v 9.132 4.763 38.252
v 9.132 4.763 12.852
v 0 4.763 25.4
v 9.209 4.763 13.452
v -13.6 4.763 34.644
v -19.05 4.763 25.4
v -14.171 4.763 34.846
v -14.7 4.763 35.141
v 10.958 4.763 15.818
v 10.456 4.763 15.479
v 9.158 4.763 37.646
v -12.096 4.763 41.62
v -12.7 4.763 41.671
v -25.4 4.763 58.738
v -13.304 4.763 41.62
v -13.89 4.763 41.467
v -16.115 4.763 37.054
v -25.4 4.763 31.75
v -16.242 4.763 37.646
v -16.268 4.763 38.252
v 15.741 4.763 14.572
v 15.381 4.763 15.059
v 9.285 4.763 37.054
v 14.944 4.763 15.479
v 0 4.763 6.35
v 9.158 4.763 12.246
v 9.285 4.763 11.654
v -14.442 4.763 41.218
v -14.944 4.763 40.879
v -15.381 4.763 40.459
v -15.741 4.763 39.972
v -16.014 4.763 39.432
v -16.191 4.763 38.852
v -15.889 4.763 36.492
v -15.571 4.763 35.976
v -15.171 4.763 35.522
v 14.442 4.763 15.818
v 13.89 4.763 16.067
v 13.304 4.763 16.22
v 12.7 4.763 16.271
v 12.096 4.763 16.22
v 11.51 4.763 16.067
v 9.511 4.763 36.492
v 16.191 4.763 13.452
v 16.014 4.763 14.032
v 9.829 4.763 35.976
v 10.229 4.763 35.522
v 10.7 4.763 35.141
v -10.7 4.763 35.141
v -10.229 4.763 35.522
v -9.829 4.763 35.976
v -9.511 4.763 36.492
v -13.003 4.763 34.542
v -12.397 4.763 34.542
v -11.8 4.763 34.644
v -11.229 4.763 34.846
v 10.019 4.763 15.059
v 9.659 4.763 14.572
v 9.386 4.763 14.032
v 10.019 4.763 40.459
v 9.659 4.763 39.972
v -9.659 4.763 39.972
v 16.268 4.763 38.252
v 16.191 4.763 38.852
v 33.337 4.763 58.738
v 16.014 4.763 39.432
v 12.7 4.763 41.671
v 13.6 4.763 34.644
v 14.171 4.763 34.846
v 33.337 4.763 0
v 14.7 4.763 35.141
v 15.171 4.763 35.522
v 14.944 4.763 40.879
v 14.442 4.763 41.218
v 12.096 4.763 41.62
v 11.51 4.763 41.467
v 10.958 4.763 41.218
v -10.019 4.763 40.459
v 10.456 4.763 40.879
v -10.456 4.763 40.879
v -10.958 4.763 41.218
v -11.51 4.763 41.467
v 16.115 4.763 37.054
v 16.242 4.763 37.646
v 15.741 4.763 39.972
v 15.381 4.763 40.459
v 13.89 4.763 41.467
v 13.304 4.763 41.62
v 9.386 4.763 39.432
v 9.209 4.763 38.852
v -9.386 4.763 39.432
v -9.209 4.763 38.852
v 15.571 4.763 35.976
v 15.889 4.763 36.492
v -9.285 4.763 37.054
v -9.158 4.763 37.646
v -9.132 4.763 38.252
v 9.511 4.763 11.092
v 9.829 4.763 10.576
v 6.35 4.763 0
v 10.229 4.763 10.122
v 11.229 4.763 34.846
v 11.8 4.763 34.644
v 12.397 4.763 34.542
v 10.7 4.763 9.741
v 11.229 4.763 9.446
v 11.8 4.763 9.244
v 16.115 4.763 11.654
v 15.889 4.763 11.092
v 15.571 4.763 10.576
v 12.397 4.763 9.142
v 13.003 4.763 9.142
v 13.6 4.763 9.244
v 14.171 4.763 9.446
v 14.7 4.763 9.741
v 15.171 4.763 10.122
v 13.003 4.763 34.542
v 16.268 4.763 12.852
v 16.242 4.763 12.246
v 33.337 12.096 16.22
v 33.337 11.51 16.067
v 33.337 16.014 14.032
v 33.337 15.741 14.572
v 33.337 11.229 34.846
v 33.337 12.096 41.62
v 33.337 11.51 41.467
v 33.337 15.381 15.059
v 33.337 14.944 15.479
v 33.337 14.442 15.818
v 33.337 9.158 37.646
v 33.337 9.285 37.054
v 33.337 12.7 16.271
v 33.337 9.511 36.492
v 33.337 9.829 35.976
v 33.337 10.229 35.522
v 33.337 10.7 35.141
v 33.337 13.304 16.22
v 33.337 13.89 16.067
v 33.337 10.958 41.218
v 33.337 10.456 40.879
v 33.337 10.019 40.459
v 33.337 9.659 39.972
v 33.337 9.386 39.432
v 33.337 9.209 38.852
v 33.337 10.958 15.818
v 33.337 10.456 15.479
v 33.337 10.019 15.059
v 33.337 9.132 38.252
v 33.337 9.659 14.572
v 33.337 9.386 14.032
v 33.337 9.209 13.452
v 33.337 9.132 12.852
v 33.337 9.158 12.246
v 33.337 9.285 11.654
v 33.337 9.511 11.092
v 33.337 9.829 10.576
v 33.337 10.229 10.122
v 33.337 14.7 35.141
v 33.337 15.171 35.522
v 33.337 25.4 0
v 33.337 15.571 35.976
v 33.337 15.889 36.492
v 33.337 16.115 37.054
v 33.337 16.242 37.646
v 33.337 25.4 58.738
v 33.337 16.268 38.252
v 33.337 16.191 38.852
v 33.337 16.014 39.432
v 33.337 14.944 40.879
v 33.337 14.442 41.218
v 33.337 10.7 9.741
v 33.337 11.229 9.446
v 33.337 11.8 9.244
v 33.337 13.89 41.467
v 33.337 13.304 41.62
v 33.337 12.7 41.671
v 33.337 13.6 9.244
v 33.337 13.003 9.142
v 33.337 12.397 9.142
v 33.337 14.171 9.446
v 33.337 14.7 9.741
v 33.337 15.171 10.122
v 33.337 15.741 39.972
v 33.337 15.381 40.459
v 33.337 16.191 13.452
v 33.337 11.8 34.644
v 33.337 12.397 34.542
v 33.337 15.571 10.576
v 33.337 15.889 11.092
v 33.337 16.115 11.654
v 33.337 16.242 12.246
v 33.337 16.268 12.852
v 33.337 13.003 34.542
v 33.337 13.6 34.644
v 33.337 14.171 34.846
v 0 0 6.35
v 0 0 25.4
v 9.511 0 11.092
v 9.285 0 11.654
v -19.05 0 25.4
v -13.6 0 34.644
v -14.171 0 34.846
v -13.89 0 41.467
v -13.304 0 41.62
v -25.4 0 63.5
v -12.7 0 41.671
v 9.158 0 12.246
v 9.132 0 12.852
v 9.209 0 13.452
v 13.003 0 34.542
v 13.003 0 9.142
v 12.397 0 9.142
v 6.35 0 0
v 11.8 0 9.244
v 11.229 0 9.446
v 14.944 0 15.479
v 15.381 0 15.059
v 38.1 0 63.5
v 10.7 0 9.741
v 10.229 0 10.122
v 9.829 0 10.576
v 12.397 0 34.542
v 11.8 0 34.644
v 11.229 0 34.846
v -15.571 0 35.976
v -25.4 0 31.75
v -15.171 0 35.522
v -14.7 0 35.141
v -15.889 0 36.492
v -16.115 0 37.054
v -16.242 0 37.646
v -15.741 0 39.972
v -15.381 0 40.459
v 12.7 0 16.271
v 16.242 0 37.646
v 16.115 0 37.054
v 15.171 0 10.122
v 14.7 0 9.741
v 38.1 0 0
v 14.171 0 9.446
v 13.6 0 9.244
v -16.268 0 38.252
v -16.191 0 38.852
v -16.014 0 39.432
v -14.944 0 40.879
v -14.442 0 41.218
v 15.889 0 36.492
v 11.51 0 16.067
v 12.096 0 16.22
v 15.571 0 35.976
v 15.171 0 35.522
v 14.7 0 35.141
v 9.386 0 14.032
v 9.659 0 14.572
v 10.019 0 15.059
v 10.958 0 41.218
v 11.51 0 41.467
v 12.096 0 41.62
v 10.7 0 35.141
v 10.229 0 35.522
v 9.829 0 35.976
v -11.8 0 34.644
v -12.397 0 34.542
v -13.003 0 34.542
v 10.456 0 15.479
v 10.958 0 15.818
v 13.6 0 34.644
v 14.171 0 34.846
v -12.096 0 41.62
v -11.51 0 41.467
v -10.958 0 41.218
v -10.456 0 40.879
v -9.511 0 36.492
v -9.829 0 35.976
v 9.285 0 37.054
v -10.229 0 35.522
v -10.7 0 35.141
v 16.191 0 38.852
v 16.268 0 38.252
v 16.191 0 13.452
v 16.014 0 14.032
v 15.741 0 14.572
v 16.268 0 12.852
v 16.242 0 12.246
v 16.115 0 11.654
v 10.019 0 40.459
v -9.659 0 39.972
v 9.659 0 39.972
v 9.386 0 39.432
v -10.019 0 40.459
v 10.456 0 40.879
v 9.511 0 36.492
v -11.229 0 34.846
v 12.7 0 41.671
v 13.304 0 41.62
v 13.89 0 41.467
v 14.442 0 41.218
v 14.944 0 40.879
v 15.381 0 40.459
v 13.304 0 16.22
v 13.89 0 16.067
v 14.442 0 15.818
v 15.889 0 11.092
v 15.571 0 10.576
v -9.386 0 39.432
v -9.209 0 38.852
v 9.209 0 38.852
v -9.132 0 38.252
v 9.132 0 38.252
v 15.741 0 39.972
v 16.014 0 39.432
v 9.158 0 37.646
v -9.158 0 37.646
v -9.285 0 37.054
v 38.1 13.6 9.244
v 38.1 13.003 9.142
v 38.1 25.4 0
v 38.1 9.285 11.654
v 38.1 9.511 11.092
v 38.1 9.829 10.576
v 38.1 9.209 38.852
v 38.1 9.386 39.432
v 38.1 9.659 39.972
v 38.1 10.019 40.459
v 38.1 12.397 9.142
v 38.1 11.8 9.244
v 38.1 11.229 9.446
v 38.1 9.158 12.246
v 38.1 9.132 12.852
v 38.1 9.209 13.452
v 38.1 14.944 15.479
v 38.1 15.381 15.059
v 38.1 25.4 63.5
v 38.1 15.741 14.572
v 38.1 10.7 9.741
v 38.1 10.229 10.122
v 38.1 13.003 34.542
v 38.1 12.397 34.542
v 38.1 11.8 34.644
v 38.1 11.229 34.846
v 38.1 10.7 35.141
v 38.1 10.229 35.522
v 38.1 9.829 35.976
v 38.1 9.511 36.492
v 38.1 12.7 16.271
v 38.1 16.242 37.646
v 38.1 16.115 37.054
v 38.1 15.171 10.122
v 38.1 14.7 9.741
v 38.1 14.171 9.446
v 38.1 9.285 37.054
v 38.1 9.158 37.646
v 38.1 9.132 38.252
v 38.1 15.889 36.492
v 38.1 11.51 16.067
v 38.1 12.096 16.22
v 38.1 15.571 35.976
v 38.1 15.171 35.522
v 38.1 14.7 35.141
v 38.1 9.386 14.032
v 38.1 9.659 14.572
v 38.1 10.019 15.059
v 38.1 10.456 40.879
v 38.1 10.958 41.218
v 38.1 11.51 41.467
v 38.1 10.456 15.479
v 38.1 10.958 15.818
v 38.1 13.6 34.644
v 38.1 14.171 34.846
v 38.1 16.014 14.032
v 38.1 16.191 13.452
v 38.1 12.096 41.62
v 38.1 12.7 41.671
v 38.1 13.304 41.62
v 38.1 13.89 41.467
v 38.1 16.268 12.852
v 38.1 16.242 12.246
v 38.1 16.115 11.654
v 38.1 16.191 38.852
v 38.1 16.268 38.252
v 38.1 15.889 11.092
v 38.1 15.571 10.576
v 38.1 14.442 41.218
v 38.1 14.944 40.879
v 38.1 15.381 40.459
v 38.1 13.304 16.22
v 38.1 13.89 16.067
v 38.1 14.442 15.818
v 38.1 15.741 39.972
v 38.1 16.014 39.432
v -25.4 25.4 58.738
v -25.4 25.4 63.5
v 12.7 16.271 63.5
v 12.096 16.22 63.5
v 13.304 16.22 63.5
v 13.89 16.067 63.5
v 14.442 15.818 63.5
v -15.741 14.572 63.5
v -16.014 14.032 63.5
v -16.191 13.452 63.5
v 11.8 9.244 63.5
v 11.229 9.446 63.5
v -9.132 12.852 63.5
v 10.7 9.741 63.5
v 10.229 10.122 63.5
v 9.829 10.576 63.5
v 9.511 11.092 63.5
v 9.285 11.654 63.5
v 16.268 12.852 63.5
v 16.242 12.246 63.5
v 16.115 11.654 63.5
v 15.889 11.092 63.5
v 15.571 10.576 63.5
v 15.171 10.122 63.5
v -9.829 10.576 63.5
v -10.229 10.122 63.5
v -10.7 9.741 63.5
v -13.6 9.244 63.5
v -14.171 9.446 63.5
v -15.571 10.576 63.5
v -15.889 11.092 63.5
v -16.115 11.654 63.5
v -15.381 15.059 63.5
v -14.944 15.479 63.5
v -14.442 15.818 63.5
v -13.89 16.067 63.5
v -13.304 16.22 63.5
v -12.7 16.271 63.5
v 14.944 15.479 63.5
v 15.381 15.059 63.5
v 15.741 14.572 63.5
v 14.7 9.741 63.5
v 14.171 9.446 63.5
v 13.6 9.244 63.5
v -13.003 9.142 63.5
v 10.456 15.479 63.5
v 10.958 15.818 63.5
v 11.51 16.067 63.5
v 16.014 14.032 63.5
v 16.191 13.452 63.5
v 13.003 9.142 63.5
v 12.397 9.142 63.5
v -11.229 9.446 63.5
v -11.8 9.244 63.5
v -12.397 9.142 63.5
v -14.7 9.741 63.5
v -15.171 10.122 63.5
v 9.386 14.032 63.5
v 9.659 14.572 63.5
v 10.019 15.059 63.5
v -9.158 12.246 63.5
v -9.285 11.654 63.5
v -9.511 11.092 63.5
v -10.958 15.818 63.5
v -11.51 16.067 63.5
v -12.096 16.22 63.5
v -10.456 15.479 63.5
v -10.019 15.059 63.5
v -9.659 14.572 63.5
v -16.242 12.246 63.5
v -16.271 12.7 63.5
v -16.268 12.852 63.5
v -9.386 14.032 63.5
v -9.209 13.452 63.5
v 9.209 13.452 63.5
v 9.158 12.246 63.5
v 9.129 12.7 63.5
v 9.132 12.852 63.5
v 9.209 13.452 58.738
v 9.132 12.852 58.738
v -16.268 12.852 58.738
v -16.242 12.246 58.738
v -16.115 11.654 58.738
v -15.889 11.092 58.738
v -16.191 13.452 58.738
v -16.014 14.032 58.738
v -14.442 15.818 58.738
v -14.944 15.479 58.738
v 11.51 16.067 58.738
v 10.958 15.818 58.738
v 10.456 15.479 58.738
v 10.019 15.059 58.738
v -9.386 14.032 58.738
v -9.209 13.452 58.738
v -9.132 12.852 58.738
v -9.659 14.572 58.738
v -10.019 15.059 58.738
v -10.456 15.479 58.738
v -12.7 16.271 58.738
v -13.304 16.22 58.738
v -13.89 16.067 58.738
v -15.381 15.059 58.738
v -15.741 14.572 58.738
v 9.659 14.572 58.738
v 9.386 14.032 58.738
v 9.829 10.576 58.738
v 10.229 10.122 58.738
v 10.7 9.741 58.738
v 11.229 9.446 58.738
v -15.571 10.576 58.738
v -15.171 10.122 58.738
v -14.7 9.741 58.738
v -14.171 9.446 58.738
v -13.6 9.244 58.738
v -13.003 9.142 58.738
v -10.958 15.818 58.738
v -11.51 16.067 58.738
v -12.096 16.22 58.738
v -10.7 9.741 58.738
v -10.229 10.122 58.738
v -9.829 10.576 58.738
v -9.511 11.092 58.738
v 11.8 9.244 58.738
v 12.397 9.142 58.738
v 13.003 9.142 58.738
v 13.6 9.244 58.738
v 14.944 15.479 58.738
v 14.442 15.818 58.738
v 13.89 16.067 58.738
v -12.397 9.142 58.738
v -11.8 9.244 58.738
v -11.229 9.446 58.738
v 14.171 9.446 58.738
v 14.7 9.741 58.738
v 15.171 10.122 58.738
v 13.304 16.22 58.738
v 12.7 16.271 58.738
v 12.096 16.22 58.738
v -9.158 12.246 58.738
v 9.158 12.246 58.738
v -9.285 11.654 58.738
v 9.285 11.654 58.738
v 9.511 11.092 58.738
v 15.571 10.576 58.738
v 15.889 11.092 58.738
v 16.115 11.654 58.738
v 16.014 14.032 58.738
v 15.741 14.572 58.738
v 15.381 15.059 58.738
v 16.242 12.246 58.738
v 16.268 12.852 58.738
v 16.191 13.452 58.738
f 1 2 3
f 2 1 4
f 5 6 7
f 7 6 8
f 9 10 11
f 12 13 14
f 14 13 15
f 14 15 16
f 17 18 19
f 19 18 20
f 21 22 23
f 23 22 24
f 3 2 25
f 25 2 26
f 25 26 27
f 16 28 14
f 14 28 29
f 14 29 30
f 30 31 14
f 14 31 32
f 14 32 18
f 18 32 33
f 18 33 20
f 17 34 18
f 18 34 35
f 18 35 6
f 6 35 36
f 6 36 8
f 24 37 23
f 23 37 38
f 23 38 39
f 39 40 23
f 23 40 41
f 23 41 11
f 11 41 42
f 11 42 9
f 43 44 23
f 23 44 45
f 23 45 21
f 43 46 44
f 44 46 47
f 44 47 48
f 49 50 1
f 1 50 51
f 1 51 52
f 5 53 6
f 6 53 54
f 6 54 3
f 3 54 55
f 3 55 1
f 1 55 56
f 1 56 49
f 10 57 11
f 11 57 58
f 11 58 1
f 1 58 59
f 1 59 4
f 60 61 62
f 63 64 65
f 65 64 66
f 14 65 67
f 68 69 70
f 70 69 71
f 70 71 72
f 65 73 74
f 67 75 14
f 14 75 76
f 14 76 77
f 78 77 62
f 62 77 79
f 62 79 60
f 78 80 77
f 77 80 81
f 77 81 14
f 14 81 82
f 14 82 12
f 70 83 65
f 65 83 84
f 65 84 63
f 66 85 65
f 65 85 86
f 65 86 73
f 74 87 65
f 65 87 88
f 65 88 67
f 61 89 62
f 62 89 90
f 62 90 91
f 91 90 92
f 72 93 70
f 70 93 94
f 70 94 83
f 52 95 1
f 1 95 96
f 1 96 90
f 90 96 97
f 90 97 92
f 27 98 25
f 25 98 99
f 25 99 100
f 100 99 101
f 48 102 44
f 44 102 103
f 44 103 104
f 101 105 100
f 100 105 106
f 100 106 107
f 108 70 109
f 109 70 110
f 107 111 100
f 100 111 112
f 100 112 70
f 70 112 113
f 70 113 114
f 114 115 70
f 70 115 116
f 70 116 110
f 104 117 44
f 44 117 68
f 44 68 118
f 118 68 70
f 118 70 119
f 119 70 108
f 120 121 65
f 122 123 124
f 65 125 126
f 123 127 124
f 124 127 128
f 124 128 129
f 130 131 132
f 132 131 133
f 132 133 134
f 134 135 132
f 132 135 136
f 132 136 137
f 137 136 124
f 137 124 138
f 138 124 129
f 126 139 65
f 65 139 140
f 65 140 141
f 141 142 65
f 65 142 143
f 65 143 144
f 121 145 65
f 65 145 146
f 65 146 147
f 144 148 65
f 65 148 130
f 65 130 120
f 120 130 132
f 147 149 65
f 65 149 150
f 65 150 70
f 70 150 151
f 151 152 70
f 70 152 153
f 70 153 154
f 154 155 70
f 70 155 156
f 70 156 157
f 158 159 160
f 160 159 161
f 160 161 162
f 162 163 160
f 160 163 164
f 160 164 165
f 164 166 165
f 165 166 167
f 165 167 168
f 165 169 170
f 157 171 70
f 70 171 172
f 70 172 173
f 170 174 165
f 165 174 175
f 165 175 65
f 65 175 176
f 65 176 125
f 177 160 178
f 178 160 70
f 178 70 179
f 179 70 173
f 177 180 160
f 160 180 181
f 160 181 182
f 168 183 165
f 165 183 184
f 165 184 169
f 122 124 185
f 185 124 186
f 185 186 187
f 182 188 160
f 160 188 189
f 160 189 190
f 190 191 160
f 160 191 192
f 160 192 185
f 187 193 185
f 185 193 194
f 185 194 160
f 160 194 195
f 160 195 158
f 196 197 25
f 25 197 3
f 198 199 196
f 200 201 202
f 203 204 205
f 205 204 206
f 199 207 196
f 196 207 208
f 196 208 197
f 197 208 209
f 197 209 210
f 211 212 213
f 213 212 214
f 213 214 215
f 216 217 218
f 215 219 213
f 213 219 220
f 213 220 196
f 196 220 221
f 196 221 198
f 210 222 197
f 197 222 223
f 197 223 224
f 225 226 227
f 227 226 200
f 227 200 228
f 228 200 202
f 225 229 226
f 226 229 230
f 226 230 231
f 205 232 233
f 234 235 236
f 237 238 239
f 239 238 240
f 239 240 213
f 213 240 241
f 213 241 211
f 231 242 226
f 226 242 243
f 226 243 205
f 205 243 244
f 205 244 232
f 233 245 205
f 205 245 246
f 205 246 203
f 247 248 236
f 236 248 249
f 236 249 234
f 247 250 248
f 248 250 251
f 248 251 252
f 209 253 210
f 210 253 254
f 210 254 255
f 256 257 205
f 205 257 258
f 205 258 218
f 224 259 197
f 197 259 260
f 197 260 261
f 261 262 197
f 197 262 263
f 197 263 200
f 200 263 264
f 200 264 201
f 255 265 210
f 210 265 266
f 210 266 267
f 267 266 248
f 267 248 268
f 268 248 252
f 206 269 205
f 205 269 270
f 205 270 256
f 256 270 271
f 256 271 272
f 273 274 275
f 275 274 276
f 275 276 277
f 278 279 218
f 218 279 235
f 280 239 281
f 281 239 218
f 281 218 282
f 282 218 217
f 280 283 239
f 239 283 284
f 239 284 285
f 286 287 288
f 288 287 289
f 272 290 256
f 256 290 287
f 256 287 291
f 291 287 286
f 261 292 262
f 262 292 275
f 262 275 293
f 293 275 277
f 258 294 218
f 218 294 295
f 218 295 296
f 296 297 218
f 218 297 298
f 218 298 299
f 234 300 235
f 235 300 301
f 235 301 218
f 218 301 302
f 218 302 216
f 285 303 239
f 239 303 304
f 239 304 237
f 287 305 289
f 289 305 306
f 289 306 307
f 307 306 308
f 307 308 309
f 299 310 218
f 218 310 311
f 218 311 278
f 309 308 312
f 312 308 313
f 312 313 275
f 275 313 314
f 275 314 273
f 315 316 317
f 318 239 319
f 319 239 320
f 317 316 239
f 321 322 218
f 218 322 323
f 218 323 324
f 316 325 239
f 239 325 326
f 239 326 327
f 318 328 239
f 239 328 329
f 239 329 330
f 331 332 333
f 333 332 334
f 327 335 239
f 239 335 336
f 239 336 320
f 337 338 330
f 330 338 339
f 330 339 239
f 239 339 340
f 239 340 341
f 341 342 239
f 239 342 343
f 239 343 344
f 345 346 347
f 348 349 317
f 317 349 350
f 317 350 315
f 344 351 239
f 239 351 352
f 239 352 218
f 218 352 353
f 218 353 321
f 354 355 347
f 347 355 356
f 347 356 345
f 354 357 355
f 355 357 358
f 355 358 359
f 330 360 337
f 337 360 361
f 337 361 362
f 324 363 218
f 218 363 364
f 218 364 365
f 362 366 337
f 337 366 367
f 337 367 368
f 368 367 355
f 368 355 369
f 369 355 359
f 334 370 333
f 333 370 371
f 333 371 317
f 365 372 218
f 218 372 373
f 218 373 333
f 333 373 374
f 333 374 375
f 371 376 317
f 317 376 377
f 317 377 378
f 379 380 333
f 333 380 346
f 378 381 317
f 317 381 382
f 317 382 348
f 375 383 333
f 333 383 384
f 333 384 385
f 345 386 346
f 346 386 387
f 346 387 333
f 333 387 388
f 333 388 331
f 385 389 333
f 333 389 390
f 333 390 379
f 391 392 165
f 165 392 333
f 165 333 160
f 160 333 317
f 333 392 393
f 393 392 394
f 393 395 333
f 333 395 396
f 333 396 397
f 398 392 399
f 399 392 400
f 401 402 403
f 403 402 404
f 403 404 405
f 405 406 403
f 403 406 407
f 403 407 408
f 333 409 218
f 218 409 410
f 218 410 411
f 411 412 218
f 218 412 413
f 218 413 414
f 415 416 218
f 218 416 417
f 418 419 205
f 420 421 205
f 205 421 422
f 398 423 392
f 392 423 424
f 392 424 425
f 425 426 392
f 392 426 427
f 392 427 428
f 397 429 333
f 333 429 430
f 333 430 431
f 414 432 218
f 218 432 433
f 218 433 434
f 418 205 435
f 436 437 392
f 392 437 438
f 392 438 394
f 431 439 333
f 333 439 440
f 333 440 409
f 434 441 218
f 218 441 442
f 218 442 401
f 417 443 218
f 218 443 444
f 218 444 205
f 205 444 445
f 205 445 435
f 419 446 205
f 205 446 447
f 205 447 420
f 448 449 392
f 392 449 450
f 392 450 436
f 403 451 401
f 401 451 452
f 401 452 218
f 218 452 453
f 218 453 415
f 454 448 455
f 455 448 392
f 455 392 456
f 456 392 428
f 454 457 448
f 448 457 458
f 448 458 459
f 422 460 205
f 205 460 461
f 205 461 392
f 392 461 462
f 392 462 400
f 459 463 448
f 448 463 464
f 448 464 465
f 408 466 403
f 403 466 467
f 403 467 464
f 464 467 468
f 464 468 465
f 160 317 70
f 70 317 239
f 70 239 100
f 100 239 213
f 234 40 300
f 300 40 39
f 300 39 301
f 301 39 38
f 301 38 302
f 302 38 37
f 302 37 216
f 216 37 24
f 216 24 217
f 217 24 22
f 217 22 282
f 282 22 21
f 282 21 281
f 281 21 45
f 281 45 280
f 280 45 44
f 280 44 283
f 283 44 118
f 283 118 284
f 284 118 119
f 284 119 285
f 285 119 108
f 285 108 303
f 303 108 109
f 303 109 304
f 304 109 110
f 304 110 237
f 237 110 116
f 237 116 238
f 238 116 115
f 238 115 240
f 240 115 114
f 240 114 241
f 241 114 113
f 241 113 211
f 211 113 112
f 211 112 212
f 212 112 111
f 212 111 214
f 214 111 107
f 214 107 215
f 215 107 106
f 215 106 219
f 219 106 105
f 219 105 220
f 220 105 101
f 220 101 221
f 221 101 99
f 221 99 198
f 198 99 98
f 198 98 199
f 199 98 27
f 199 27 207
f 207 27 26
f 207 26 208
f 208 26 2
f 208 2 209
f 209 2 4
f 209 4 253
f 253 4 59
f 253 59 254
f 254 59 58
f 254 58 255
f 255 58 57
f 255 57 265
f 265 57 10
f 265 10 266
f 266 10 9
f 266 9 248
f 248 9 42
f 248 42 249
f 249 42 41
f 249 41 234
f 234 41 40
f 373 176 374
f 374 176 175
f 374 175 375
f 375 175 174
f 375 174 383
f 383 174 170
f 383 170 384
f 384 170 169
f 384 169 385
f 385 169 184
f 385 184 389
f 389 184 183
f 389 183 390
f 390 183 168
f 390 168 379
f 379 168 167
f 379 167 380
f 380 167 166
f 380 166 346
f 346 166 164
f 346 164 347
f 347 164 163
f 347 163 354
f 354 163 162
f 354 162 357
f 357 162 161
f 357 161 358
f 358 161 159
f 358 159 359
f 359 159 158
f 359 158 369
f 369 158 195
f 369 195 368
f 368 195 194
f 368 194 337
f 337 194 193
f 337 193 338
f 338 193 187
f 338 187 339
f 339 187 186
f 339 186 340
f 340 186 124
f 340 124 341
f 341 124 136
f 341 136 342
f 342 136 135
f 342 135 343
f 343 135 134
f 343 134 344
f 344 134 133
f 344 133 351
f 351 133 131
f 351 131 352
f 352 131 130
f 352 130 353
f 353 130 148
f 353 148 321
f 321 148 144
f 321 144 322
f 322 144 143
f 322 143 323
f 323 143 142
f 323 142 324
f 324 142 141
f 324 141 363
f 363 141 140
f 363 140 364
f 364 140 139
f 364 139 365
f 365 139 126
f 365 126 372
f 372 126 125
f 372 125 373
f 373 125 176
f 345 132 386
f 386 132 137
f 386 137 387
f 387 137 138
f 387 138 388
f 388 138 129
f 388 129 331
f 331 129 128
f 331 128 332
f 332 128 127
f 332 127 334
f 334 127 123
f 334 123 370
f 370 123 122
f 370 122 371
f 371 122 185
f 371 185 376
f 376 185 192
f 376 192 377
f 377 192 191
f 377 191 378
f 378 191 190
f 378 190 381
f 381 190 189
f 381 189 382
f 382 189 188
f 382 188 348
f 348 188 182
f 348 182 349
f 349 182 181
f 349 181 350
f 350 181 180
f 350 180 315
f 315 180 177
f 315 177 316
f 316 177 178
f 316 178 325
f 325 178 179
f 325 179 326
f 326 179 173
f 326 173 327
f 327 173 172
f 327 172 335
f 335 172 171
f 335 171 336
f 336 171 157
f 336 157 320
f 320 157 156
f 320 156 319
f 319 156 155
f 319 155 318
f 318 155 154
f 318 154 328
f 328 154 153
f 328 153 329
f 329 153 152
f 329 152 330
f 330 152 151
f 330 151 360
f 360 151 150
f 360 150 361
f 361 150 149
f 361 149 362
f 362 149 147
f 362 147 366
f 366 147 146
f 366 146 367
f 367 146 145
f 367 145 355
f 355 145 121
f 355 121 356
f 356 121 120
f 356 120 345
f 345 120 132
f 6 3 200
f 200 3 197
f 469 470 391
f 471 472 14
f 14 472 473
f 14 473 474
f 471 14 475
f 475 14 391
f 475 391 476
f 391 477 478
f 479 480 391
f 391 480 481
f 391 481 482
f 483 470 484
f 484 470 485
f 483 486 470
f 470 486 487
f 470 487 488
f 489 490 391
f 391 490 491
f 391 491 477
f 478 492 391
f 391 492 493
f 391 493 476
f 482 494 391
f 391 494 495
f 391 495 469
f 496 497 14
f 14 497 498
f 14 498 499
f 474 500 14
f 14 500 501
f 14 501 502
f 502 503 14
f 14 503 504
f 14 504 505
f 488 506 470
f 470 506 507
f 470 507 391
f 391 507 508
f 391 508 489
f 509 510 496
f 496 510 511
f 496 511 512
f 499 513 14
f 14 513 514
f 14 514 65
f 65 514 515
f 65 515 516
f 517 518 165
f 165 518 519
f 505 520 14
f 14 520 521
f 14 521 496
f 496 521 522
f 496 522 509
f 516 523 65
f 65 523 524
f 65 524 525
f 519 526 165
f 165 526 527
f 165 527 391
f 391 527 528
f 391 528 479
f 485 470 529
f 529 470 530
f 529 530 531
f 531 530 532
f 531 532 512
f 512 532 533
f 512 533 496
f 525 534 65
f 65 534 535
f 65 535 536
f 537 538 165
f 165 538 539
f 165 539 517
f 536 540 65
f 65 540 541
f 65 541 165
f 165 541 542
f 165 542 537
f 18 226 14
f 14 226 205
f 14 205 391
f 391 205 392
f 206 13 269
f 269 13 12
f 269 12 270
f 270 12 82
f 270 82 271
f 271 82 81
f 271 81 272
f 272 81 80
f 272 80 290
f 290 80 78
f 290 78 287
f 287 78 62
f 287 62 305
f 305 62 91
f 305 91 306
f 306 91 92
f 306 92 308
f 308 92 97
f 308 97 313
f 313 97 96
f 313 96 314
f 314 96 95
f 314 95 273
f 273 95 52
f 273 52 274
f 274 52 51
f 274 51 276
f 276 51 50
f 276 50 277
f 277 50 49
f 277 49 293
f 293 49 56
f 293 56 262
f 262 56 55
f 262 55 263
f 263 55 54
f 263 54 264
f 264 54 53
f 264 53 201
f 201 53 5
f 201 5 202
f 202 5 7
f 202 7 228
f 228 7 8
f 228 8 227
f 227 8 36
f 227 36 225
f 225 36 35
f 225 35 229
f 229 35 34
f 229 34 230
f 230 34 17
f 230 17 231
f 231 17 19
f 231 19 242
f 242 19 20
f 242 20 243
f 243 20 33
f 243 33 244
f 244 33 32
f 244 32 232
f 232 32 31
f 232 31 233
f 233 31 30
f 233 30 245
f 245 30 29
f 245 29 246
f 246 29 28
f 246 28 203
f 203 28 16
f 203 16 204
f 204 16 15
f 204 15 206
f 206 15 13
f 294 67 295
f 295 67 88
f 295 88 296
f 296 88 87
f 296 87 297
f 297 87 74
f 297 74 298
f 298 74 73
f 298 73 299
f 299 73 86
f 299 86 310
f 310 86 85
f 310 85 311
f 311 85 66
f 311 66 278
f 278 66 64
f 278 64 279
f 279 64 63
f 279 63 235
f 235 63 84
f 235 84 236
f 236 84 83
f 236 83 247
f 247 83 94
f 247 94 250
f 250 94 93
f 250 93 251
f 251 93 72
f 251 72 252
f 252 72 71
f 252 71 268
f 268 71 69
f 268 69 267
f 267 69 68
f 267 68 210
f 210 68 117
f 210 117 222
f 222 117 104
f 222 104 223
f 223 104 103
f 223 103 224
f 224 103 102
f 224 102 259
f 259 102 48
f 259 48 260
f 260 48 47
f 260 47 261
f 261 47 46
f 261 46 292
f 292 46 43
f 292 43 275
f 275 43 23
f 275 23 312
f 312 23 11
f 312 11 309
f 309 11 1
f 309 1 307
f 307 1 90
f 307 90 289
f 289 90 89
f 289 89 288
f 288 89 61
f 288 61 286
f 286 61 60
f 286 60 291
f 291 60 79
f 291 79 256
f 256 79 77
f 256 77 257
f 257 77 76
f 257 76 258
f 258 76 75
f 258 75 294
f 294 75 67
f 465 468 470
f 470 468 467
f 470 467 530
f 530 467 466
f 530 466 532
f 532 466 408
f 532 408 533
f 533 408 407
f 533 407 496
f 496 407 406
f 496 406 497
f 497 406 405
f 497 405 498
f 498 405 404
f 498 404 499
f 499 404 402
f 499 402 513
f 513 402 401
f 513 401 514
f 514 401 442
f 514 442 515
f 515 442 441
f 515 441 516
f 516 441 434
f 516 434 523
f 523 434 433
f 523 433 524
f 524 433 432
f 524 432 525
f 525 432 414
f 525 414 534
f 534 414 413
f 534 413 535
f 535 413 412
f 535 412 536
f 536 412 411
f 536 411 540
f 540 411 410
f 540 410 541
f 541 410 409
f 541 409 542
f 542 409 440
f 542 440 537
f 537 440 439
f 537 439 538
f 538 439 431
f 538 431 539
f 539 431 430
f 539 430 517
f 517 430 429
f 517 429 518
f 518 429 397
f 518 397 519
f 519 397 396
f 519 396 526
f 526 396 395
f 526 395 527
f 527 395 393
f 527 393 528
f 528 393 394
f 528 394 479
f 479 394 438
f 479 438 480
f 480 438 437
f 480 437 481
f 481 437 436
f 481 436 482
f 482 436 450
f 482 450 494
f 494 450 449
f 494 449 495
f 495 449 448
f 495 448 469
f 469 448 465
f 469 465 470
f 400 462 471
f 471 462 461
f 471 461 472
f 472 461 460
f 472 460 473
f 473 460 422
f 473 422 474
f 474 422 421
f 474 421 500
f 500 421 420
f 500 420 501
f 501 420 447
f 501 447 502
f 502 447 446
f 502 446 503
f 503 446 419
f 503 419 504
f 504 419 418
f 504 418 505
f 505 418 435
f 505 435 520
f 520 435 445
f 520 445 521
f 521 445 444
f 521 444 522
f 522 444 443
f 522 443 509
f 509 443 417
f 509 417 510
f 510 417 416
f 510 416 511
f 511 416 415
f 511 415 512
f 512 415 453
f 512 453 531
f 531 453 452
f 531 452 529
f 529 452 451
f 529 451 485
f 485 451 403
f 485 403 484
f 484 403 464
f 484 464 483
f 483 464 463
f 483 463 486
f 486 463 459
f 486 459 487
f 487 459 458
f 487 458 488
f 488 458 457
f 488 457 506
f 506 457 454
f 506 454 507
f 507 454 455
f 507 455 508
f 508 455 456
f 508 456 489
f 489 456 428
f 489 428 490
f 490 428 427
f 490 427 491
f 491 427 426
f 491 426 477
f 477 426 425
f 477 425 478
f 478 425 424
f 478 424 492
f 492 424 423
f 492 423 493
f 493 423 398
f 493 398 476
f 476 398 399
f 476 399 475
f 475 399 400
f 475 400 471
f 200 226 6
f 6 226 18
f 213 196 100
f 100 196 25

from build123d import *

# Parameters (mm, degrees)
BOSS_EXTRUDE1_DEPTH     = 63.5
F_1_4_CLEARANCE_HOLE1_D = 7.14248
F_1_4_CLEARANCE_HOLE2_D = 7.14248
CHAMFER4_SIZE           = 6.35


with BuildPart() as part:
    # Sketch1 → Boss-Extrude1 (new body)
    with BuildSketch(Plane.XY):
        Polygon((0, 0), (38.1, 0), (38.1, 25.4), (33.3375, 25.4), (33.3375, 4.7625), (0, 4.7625), align=None)
    boss_extrude1 = extrude(amount=BOSS_EXTRUDE1_DEPTH)

    # 1/4 Clearance Hole1 (through all)
    with Locations(Plane(origin=(0, 4.7625, 0), x_dir=(1, 0, 0), z_dir=(0, 1, 0))):
        with Locations((12.7, -12.7), (12.7, -38.1)):
            f_1_4_clearance_hole1 = Hole(F_1_4_CLEARANCE_HOLE1_D / 2)

    # 1/4 Clearance Hole2 (through all)
    with Locations(Plane.ZY.offset(-33.3375)):
        with Locations((38.1, 12.7), (12.7, 12.7)):
            f_1_4_clearance_hole2 = Hole(F_1_4_CLEARANCE_HOLE2_D / 2)

    # Mirror1: Boss-Extrude1, 1/4 Clearance Hole1, 1/4 Clearance Hole2 across plane
    add(boss_extrude1.mirror(Plane(origin=(-12.7, 0, 12.7), x_dir=(0.7071067811865477, 0, 0.7071067811865474), z_dir=(0.7071067811865474, 0, -0.7071067811865477))))
    add(f_1_4_clearance_hole1.mirror(Plane(origin=(-12.7, 0, 12.7), x_dir=(0.7071067811865477, 0, 0.7071067811865474), z_dir=(0.7071067811865474, 0, -0.7071067811865477))), mode=Mode.SUBTRACT)
    add(f_1_4_clearance_hole2.mirror(Plane(origin=(-12.7, 0, 12.7), x_dir=(0.7071067811865477, 0, 0.7071067811865474), z_dir=(0.7071067811865474, 0, -0.7071067811865477))), mode=Mode.SUBTRACT)

    # Chamfer4
    chamfer4_edges = [part.edges().sort_by_distance(p)[0] for p in [
        (-25.4, 2.38125, 25.4),
        (0, 2.38125, 0),
    ]]
    chamfer(chamfer4_edges, length=CHAMFER4_SIZE)


solid = part.part
